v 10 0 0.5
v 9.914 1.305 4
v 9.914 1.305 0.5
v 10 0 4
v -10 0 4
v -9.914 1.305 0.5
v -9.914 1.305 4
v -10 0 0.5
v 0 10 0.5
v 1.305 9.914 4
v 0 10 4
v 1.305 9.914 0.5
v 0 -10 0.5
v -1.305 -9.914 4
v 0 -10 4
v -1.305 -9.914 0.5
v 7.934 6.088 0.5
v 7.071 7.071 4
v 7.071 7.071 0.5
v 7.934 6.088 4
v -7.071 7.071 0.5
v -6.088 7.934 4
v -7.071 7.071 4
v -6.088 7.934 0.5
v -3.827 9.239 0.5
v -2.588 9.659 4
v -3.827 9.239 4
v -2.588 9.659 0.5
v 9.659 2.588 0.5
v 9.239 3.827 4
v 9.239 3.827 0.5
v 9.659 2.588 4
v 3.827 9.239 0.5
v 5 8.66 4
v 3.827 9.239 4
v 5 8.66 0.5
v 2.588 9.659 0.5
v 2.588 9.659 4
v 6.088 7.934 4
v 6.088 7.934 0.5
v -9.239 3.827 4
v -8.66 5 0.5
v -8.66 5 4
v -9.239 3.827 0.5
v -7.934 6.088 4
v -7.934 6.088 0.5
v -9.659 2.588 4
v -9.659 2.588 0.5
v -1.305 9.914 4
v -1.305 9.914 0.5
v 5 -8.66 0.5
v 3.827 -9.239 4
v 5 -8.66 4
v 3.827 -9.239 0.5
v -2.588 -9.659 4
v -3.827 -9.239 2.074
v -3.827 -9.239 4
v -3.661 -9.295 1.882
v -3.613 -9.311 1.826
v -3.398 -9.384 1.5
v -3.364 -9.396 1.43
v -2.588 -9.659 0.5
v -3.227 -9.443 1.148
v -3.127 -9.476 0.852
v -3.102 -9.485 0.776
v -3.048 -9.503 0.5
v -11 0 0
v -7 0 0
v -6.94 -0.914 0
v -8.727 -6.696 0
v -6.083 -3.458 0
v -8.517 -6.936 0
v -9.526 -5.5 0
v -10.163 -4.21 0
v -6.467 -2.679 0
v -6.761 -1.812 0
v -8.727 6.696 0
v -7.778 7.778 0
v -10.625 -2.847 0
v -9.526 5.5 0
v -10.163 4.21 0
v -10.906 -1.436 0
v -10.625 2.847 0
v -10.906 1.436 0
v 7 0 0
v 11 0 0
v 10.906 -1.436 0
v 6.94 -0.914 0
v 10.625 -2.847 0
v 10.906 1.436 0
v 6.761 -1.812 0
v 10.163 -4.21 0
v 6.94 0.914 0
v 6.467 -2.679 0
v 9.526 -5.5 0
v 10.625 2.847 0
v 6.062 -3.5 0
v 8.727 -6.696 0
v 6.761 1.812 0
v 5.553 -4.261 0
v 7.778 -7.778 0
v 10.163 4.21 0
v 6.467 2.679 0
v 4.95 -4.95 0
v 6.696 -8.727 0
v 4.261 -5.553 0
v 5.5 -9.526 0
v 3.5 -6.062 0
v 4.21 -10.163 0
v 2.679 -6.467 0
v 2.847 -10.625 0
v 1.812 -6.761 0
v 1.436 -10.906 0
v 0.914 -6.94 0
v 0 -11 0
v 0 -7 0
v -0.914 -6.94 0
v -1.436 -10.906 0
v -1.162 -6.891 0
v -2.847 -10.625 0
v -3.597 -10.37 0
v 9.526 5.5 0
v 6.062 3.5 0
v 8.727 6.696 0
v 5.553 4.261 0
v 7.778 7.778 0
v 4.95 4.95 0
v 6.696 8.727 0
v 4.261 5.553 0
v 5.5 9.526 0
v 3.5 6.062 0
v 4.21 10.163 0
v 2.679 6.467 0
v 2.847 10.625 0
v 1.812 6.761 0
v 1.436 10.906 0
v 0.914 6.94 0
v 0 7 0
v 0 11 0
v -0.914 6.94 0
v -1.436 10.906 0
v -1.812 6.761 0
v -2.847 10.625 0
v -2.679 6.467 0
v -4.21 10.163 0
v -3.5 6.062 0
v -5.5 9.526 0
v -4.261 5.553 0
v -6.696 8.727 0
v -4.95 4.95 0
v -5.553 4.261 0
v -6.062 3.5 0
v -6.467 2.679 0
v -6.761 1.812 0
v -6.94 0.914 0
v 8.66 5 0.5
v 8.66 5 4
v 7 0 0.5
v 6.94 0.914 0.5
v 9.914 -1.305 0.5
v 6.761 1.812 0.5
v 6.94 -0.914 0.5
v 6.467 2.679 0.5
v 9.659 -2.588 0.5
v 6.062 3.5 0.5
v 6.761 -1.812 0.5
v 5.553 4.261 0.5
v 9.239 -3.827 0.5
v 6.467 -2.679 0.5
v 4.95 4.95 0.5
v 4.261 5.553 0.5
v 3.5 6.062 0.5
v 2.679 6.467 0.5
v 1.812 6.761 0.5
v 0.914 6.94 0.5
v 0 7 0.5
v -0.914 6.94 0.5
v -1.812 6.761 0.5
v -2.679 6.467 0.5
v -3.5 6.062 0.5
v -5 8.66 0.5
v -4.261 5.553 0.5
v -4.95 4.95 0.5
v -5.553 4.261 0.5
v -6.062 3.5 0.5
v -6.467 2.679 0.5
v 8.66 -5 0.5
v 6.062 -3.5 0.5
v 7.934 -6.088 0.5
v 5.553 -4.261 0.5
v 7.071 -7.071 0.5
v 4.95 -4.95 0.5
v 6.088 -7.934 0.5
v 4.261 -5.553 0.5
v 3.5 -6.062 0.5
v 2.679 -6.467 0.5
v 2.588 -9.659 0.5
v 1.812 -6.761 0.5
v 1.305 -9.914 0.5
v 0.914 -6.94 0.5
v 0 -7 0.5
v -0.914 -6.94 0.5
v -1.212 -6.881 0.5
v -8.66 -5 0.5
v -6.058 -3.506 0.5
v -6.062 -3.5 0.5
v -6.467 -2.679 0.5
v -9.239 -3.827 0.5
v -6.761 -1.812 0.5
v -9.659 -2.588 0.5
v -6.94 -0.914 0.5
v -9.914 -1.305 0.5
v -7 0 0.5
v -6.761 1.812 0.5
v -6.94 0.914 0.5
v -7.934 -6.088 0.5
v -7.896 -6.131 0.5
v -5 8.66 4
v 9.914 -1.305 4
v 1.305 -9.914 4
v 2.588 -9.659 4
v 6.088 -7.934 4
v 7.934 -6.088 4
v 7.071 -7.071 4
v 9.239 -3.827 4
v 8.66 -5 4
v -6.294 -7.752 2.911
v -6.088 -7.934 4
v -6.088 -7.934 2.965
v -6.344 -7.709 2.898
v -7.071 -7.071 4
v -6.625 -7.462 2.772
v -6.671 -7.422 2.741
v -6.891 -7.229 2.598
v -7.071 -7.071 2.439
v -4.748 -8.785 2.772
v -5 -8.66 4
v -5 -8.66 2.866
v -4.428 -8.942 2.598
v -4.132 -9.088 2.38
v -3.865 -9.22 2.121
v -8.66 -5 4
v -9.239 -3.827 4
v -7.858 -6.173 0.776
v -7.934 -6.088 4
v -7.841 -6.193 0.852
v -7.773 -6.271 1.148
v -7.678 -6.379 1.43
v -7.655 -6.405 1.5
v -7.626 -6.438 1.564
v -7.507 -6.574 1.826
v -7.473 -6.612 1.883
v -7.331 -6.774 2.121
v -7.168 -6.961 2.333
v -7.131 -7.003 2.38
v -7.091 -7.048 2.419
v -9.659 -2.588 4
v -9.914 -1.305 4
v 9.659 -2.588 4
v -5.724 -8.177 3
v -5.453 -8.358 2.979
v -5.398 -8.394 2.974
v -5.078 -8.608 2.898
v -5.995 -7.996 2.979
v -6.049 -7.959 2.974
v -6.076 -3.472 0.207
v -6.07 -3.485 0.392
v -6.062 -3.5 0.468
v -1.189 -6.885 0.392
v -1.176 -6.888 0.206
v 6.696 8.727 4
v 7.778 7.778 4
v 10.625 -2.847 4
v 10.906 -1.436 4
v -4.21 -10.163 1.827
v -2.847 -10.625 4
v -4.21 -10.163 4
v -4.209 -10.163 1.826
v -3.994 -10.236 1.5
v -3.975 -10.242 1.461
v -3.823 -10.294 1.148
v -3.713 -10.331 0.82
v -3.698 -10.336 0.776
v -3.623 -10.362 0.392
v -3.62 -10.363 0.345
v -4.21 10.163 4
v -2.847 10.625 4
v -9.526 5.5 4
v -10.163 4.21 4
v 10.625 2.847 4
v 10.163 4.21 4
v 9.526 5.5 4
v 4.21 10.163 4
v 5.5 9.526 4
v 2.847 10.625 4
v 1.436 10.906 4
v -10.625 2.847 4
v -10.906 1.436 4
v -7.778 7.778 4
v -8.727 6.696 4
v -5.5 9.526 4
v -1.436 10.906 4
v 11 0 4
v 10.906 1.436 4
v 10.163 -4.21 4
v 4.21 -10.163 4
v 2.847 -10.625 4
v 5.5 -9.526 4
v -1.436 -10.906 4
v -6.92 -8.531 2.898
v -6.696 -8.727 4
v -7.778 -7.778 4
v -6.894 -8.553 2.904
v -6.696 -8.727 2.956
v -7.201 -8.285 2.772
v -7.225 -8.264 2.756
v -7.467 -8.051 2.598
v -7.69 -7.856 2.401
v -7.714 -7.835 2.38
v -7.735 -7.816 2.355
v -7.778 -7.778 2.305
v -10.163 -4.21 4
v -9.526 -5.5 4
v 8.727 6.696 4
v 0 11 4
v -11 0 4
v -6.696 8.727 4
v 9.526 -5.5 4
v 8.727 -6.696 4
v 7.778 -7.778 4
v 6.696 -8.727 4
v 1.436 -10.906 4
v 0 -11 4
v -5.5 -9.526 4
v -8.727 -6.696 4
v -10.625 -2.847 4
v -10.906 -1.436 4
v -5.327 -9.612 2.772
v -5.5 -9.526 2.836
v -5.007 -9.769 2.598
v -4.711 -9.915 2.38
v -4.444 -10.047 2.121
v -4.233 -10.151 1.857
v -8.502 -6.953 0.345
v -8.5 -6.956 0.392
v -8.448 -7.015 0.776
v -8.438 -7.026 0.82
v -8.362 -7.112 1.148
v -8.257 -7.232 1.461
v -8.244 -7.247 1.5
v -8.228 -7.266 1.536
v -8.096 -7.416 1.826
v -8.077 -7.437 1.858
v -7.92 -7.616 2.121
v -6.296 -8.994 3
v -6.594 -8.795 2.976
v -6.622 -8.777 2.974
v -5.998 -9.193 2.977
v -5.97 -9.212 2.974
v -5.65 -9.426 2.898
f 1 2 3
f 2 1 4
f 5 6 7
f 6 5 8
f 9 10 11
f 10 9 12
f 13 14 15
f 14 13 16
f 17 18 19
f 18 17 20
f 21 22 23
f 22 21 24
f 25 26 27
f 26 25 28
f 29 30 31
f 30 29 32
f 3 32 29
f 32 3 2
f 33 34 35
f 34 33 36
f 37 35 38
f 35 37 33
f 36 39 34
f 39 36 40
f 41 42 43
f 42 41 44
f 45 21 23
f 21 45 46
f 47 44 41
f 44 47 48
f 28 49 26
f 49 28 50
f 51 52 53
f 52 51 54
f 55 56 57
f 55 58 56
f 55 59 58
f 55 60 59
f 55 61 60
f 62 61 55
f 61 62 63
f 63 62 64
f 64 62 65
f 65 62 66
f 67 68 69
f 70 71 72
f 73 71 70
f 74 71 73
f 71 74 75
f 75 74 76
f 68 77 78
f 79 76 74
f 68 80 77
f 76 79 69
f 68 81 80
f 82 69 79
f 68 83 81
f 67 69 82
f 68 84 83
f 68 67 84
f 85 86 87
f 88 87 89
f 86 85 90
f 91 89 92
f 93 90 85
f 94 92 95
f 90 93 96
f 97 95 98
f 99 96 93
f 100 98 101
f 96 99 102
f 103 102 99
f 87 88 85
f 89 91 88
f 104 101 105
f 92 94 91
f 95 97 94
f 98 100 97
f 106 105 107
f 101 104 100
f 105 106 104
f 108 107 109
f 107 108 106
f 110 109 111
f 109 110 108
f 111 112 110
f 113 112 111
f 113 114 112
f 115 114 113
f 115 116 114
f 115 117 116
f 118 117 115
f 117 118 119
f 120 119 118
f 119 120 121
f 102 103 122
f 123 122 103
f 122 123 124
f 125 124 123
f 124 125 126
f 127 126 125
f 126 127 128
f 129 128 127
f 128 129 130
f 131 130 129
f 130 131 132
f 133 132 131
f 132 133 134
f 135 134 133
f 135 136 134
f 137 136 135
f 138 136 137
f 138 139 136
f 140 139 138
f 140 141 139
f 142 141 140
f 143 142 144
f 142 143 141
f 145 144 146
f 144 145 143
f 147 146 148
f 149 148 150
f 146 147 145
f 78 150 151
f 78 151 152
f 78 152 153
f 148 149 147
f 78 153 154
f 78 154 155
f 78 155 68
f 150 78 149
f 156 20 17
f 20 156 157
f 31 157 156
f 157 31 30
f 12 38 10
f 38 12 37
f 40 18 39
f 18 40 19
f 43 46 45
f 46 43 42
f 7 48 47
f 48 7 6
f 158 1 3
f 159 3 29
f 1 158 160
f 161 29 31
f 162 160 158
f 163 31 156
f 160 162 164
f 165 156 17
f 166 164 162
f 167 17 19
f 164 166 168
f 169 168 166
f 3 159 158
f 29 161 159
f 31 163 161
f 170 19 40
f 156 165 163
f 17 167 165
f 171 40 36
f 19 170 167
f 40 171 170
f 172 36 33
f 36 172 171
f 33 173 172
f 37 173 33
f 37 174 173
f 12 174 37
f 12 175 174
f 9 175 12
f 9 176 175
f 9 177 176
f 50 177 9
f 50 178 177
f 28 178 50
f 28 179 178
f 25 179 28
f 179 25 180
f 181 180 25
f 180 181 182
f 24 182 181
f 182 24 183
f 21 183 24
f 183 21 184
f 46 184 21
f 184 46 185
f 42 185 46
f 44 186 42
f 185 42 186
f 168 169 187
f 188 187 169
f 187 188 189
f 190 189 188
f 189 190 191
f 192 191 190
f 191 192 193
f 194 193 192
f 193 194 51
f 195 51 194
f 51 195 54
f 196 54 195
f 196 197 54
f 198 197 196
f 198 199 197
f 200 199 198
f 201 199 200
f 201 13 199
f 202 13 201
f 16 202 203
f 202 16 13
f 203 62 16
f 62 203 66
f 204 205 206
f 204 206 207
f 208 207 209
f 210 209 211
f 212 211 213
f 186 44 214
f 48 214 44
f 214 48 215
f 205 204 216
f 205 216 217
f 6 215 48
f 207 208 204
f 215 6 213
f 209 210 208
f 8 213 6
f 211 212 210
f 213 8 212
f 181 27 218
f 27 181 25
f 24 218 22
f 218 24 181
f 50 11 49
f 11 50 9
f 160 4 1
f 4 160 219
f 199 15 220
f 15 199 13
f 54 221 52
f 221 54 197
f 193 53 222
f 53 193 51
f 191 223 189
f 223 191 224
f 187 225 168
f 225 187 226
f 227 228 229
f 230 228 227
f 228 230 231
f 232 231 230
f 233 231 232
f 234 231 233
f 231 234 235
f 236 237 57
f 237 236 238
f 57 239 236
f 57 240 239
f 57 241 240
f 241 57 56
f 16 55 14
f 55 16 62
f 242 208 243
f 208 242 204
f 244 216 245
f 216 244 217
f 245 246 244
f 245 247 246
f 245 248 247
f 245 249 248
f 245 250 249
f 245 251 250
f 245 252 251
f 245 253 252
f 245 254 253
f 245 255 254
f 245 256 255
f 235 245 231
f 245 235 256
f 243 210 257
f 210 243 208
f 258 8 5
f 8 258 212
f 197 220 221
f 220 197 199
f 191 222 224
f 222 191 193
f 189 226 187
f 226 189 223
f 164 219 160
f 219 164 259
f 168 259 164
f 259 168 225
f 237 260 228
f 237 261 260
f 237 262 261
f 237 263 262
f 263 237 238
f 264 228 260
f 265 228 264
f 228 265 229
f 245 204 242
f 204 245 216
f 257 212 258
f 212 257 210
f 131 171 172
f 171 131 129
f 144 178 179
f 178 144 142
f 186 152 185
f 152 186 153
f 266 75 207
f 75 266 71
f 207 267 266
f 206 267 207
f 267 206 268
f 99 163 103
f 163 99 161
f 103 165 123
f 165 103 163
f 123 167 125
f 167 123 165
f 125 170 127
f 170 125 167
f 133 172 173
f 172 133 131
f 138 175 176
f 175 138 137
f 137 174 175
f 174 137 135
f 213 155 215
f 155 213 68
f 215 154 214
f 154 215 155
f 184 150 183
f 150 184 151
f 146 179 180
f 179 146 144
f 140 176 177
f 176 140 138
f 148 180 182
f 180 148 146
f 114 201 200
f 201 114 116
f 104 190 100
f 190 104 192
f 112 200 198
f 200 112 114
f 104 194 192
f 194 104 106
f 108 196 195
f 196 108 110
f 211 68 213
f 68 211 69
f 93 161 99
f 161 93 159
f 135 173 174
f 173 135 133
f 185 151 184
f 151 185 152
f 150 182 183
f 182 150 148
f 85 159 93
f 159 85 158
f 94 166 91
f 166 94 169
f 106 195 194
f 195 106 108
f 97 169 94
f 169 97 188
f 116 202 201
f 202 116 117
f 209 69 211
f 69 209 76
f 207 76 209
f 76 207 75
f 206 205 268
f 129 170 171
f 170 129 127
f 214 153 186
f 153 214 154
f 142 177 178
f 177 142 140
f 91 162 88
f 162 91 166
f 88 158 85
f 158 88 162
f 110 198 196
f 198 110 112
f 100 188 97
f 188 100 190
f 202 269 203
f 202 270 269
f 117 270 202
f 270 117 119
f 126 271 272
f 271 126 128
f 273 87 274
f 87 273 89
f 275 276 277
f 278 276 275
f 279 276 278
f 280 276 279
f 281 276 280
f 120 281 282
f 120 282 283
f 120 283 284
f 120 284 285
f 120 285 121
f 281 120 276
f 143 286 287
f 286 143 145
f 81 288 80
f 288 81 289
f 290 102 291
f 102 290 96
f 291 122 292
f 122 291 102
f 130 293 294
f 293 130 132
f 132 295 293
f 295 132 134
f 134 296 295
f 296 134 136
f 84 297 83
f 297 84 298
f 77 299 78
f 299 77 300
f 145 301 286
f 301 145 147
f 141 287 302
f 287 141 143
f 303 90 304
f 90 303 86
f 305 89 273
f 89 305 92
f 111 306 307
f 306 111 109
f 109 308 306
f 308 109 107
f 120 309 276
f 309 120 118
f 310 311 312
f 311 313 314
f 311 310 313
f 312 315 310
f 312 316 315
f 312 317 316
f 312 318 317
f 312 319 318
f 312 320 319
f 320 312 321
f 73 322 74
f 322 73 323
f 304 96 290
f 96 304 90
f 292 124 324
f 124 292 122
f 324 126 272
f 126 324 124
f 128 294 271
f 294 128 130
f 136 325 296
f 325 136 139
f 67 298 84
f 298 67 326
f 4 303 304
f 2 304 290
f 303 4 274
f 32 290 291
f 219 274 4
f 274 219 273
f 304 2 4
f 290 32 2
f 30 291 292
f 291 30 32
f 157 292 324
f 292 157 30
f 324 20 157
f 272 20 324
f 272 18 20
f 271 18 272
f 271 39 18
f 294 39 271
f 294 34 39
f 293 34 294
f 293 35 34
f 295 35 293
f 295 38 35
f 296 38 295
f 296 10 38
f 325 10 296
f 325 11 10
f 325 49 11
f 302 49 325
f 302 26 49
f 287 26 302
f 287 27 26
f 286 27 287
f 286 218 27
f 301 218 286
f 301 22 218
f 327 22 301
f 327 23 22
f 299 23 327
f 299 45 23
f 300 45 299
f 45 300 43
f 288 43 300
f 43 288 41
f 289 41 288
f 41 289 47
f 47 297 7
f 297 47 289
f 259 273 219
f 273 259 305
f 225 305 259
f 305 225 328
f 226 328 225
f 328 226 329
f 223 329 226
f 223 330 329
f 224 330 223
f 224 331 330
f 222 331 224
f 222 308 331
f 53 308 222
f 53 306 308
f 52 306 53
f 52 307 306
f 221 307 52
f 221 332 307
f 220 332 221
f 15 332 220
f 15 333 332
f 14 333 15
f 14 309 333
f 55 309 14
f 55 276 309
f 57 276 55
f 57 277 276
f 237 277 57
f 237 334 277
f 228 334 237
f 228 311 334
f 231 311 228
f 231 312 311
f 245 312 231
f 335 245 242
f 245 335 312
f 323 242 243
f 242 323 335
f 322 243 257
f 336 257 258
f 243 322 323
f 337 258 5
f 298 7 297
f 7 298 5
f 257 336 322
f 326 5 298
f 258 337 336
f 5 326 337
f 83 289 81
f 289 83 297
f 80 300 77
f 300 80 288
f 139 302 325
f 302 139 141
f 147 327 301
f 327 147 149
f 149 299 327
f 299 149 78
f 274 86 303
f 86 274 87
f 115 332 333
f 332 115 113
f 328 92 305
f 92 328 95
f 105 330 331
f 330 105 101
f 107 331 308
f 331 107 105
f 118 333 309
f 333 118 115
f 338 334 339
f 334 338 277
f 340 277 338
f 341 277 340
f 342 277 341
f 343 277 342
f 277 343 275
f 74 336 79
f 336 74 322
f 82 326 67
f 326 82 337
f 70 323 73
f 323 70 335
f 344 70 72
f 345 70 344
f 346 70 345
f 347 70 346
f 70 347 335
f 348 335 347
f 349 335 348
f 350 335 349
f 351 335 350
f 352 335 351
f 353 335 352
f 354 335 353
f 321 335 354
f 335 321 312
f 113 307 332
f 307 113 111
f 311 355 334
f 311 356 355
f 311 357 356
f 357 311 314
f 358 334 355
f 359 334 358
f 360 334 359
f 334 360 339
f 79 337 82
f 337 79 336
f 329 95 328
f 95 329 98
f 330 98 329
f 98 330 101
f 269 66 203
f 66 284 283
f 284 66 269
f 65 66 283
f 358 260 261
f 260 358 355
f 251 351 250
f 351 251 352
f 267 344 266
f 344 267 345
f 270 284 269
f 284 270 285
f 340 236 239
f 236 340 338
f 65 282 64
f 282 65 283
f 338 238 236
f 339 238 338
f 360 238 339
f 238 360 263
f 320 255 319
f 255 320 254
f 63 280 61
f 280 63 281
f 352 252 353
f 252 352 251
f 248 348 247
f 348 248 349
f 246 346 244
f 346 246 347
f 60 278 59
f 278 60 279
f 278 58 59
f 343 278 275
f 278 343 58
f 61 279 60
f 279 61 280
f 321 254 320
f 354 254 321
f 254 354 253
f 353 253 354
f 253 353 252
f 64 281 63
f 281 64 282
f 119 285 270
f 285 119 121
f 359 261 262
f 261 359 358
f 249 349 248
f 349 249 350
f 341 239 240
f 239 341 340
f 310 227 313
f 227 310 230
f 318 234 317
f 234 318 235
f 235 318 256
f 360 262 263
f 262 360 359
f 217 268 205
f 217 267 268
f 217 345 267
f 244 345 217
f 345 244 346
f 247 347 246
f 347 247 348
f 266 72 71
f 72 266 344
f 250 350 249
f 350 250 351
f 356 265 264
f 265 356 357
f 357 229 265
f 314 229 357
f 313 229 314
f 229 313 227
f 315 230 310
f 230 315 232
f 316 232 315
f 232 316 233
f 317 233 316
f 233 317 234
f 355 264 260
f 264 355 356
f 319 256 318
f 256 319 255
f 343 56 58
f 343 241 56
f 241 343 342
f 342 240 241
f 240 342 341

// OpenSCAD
// file: ../build_environments.scad
// build_environments.scad: modules to build level sections
//

module pool(diameter=10.0, wall_height=2.0, step_width=3.0, connections=[])
{
    difference() {
        union() {
        difference() {
            cylinder(h=0.5,r1=diameter+step_width,r2=diameter+step_width,$fn=48);
            translate([0,0,-0.1])
                cylinder(h=0.7,r1=diameter,r2=diameter,$fn=48);
        }
        difference() {
            cylinder(h=wall_height,r1=diameter+step_width+1.0,r2=diameter+step_width+1.0,$fn=48);
            translate([0,0,-0.1])
                cylinder(h=wall_height+0.2,r1=diameter+step_width,r2=diameter+step_width,$fn=48);
        }
        }
    
        for (c = connections)
        {
            rotate([0,90,0]) {
                angle = atan2(c[1],c[0]);
                rotate([-angle,0,0]) {
                    cylinder(h=diameter+5.0,r1=c[2],r2=c[2],$fn=48);
                }
            }
        }
    }
}

module straight(length=10.0, width=2.0, dy1=0.0, dy2=0.0, dz=0.0)
{
    dims = [0, 0, 0, 0, 0, (dz/length)];
    matrix = [
        [ 1, dims[0], dims[1], 0 ],
        [ dims[2], 1, dims[4], 0 ],
        [ dims[5], dims[3], 1, 0 ],
        [ 0, 0, 0, 1 ]
    ];
    multmatrix(matrix)
    difference() {
        translate([dy1,0,0])
        union() {
            rotate([0,90,0]) {
                difference() {
                    cylinder(h=(length-dy1-dy2),r1=width+1.0,r2=width+1.0,$fn=24);
                    translate([0,0,-0.1])
                        cylinder(h=(length-dy1-dy2+0.2),r1=width,r2=width,$fn=24);
                }
                difference() {
                    cylinder(h=1.0,r1=width+2.0,r2=width+2.0,$fn=24);
                    translate([0,0,-0.1])
                        cylinder(h=1.2,r1=width,r2=width,$fn=24);
                }
                translate([0,0,(length-dy1-dy2)-1.0]) {
                    difference() {
                        cylinder(h=1.0,r1=width+2.0,r2=width+2.0,$fn=24);
                        translate([0,0,-0.1])
                            cylinder(h=1.2,r1=width,r2=width,$fn=24);
                    }
                }
            }
        }
        translate([0,0,-(2*width+4.0)/2])
            cube([3*length,3*length,2*width+4.0],center=true);
    }
}

module curve(p0=[0,0], center=[0,0], dir=1, angle=0.0, width=2.0)
{
    radius = sqrt((p0[0]-center[0])*(p0[0]-center[0]) + (p0[1]-center[1])*(p0[1]-center[1]));
    if (dir == 0) {
        difference() {
            rotate([0,0,-90])
            difference() {
                rotate_extrude(angle = angle, convexity = 10, $fn=32)
                    translate([radius, 0, 0])
                        circle(r = width+1.0,$fn=24);
                rotate([0,0,-1.0])
                    rotate_extrude(angle = angle+2.0, convexity = 10, $fn=32)
                        translate([radius, 0, 0])
                            circle(r = width,$fn=24);
            }
            translate([0,0,-(2*width+4.0)/2])
                cube([5*radius,5*radius,2*width+4.0],center=true);
        }
    }
    else {
        difference() {
            rotate([0,0,90])
            difference() {
                rotate_extrude(angle = -angle, convexity = 10, $fn=32)
                    translate([radius, 0, 0])
                        circle(r = width+1.0,$fn=24);
                rotate([0,0,1.0])
                    rotate_extrude(angle = -angle-2.0, convexity = 10, $fn=32)
                        translate([radius, 0, 0])
                            circle(r = width,$fn=24);
            }
            translate([0,0,-(2*width+4.0)/2])
                cube([5*radius,5*radius,2*width+4.0],center=true);
        }
    }

}

// test pool
//pool(diameter=12.0000, wall_height=3.0000, step_width=3.0000, connections=[[0.0000,-26.0000,2.0000], [23.6074,0.0000,2.0000]]);

// test straight, slope
//straight(length=26.0000, width=2.0000, dy1=11.8322, dy2=6.7082, dz=0.0000);
//straight(length=29.1549, width=12.0000, dy1=0.0000, dy2=0.0000, dz=-15.0000);

// test curve
//curve(p0=[23.6074, 0.0000], center=[23.6074, 5.0000], dir=0, angle=60.1011, width=2.0000);
//curve(p0=[33.6426, 12.4219], center=[37.9771, 9.9295], dir=1, angle=120.4627, width=2.0000);
// main file
use <../build_environments.scad>;
pool(diameter=7.0000, wall_height=4.0000, step_width=3.0000, connections=[[-9.5134,-13.5906,3.0000]]);
